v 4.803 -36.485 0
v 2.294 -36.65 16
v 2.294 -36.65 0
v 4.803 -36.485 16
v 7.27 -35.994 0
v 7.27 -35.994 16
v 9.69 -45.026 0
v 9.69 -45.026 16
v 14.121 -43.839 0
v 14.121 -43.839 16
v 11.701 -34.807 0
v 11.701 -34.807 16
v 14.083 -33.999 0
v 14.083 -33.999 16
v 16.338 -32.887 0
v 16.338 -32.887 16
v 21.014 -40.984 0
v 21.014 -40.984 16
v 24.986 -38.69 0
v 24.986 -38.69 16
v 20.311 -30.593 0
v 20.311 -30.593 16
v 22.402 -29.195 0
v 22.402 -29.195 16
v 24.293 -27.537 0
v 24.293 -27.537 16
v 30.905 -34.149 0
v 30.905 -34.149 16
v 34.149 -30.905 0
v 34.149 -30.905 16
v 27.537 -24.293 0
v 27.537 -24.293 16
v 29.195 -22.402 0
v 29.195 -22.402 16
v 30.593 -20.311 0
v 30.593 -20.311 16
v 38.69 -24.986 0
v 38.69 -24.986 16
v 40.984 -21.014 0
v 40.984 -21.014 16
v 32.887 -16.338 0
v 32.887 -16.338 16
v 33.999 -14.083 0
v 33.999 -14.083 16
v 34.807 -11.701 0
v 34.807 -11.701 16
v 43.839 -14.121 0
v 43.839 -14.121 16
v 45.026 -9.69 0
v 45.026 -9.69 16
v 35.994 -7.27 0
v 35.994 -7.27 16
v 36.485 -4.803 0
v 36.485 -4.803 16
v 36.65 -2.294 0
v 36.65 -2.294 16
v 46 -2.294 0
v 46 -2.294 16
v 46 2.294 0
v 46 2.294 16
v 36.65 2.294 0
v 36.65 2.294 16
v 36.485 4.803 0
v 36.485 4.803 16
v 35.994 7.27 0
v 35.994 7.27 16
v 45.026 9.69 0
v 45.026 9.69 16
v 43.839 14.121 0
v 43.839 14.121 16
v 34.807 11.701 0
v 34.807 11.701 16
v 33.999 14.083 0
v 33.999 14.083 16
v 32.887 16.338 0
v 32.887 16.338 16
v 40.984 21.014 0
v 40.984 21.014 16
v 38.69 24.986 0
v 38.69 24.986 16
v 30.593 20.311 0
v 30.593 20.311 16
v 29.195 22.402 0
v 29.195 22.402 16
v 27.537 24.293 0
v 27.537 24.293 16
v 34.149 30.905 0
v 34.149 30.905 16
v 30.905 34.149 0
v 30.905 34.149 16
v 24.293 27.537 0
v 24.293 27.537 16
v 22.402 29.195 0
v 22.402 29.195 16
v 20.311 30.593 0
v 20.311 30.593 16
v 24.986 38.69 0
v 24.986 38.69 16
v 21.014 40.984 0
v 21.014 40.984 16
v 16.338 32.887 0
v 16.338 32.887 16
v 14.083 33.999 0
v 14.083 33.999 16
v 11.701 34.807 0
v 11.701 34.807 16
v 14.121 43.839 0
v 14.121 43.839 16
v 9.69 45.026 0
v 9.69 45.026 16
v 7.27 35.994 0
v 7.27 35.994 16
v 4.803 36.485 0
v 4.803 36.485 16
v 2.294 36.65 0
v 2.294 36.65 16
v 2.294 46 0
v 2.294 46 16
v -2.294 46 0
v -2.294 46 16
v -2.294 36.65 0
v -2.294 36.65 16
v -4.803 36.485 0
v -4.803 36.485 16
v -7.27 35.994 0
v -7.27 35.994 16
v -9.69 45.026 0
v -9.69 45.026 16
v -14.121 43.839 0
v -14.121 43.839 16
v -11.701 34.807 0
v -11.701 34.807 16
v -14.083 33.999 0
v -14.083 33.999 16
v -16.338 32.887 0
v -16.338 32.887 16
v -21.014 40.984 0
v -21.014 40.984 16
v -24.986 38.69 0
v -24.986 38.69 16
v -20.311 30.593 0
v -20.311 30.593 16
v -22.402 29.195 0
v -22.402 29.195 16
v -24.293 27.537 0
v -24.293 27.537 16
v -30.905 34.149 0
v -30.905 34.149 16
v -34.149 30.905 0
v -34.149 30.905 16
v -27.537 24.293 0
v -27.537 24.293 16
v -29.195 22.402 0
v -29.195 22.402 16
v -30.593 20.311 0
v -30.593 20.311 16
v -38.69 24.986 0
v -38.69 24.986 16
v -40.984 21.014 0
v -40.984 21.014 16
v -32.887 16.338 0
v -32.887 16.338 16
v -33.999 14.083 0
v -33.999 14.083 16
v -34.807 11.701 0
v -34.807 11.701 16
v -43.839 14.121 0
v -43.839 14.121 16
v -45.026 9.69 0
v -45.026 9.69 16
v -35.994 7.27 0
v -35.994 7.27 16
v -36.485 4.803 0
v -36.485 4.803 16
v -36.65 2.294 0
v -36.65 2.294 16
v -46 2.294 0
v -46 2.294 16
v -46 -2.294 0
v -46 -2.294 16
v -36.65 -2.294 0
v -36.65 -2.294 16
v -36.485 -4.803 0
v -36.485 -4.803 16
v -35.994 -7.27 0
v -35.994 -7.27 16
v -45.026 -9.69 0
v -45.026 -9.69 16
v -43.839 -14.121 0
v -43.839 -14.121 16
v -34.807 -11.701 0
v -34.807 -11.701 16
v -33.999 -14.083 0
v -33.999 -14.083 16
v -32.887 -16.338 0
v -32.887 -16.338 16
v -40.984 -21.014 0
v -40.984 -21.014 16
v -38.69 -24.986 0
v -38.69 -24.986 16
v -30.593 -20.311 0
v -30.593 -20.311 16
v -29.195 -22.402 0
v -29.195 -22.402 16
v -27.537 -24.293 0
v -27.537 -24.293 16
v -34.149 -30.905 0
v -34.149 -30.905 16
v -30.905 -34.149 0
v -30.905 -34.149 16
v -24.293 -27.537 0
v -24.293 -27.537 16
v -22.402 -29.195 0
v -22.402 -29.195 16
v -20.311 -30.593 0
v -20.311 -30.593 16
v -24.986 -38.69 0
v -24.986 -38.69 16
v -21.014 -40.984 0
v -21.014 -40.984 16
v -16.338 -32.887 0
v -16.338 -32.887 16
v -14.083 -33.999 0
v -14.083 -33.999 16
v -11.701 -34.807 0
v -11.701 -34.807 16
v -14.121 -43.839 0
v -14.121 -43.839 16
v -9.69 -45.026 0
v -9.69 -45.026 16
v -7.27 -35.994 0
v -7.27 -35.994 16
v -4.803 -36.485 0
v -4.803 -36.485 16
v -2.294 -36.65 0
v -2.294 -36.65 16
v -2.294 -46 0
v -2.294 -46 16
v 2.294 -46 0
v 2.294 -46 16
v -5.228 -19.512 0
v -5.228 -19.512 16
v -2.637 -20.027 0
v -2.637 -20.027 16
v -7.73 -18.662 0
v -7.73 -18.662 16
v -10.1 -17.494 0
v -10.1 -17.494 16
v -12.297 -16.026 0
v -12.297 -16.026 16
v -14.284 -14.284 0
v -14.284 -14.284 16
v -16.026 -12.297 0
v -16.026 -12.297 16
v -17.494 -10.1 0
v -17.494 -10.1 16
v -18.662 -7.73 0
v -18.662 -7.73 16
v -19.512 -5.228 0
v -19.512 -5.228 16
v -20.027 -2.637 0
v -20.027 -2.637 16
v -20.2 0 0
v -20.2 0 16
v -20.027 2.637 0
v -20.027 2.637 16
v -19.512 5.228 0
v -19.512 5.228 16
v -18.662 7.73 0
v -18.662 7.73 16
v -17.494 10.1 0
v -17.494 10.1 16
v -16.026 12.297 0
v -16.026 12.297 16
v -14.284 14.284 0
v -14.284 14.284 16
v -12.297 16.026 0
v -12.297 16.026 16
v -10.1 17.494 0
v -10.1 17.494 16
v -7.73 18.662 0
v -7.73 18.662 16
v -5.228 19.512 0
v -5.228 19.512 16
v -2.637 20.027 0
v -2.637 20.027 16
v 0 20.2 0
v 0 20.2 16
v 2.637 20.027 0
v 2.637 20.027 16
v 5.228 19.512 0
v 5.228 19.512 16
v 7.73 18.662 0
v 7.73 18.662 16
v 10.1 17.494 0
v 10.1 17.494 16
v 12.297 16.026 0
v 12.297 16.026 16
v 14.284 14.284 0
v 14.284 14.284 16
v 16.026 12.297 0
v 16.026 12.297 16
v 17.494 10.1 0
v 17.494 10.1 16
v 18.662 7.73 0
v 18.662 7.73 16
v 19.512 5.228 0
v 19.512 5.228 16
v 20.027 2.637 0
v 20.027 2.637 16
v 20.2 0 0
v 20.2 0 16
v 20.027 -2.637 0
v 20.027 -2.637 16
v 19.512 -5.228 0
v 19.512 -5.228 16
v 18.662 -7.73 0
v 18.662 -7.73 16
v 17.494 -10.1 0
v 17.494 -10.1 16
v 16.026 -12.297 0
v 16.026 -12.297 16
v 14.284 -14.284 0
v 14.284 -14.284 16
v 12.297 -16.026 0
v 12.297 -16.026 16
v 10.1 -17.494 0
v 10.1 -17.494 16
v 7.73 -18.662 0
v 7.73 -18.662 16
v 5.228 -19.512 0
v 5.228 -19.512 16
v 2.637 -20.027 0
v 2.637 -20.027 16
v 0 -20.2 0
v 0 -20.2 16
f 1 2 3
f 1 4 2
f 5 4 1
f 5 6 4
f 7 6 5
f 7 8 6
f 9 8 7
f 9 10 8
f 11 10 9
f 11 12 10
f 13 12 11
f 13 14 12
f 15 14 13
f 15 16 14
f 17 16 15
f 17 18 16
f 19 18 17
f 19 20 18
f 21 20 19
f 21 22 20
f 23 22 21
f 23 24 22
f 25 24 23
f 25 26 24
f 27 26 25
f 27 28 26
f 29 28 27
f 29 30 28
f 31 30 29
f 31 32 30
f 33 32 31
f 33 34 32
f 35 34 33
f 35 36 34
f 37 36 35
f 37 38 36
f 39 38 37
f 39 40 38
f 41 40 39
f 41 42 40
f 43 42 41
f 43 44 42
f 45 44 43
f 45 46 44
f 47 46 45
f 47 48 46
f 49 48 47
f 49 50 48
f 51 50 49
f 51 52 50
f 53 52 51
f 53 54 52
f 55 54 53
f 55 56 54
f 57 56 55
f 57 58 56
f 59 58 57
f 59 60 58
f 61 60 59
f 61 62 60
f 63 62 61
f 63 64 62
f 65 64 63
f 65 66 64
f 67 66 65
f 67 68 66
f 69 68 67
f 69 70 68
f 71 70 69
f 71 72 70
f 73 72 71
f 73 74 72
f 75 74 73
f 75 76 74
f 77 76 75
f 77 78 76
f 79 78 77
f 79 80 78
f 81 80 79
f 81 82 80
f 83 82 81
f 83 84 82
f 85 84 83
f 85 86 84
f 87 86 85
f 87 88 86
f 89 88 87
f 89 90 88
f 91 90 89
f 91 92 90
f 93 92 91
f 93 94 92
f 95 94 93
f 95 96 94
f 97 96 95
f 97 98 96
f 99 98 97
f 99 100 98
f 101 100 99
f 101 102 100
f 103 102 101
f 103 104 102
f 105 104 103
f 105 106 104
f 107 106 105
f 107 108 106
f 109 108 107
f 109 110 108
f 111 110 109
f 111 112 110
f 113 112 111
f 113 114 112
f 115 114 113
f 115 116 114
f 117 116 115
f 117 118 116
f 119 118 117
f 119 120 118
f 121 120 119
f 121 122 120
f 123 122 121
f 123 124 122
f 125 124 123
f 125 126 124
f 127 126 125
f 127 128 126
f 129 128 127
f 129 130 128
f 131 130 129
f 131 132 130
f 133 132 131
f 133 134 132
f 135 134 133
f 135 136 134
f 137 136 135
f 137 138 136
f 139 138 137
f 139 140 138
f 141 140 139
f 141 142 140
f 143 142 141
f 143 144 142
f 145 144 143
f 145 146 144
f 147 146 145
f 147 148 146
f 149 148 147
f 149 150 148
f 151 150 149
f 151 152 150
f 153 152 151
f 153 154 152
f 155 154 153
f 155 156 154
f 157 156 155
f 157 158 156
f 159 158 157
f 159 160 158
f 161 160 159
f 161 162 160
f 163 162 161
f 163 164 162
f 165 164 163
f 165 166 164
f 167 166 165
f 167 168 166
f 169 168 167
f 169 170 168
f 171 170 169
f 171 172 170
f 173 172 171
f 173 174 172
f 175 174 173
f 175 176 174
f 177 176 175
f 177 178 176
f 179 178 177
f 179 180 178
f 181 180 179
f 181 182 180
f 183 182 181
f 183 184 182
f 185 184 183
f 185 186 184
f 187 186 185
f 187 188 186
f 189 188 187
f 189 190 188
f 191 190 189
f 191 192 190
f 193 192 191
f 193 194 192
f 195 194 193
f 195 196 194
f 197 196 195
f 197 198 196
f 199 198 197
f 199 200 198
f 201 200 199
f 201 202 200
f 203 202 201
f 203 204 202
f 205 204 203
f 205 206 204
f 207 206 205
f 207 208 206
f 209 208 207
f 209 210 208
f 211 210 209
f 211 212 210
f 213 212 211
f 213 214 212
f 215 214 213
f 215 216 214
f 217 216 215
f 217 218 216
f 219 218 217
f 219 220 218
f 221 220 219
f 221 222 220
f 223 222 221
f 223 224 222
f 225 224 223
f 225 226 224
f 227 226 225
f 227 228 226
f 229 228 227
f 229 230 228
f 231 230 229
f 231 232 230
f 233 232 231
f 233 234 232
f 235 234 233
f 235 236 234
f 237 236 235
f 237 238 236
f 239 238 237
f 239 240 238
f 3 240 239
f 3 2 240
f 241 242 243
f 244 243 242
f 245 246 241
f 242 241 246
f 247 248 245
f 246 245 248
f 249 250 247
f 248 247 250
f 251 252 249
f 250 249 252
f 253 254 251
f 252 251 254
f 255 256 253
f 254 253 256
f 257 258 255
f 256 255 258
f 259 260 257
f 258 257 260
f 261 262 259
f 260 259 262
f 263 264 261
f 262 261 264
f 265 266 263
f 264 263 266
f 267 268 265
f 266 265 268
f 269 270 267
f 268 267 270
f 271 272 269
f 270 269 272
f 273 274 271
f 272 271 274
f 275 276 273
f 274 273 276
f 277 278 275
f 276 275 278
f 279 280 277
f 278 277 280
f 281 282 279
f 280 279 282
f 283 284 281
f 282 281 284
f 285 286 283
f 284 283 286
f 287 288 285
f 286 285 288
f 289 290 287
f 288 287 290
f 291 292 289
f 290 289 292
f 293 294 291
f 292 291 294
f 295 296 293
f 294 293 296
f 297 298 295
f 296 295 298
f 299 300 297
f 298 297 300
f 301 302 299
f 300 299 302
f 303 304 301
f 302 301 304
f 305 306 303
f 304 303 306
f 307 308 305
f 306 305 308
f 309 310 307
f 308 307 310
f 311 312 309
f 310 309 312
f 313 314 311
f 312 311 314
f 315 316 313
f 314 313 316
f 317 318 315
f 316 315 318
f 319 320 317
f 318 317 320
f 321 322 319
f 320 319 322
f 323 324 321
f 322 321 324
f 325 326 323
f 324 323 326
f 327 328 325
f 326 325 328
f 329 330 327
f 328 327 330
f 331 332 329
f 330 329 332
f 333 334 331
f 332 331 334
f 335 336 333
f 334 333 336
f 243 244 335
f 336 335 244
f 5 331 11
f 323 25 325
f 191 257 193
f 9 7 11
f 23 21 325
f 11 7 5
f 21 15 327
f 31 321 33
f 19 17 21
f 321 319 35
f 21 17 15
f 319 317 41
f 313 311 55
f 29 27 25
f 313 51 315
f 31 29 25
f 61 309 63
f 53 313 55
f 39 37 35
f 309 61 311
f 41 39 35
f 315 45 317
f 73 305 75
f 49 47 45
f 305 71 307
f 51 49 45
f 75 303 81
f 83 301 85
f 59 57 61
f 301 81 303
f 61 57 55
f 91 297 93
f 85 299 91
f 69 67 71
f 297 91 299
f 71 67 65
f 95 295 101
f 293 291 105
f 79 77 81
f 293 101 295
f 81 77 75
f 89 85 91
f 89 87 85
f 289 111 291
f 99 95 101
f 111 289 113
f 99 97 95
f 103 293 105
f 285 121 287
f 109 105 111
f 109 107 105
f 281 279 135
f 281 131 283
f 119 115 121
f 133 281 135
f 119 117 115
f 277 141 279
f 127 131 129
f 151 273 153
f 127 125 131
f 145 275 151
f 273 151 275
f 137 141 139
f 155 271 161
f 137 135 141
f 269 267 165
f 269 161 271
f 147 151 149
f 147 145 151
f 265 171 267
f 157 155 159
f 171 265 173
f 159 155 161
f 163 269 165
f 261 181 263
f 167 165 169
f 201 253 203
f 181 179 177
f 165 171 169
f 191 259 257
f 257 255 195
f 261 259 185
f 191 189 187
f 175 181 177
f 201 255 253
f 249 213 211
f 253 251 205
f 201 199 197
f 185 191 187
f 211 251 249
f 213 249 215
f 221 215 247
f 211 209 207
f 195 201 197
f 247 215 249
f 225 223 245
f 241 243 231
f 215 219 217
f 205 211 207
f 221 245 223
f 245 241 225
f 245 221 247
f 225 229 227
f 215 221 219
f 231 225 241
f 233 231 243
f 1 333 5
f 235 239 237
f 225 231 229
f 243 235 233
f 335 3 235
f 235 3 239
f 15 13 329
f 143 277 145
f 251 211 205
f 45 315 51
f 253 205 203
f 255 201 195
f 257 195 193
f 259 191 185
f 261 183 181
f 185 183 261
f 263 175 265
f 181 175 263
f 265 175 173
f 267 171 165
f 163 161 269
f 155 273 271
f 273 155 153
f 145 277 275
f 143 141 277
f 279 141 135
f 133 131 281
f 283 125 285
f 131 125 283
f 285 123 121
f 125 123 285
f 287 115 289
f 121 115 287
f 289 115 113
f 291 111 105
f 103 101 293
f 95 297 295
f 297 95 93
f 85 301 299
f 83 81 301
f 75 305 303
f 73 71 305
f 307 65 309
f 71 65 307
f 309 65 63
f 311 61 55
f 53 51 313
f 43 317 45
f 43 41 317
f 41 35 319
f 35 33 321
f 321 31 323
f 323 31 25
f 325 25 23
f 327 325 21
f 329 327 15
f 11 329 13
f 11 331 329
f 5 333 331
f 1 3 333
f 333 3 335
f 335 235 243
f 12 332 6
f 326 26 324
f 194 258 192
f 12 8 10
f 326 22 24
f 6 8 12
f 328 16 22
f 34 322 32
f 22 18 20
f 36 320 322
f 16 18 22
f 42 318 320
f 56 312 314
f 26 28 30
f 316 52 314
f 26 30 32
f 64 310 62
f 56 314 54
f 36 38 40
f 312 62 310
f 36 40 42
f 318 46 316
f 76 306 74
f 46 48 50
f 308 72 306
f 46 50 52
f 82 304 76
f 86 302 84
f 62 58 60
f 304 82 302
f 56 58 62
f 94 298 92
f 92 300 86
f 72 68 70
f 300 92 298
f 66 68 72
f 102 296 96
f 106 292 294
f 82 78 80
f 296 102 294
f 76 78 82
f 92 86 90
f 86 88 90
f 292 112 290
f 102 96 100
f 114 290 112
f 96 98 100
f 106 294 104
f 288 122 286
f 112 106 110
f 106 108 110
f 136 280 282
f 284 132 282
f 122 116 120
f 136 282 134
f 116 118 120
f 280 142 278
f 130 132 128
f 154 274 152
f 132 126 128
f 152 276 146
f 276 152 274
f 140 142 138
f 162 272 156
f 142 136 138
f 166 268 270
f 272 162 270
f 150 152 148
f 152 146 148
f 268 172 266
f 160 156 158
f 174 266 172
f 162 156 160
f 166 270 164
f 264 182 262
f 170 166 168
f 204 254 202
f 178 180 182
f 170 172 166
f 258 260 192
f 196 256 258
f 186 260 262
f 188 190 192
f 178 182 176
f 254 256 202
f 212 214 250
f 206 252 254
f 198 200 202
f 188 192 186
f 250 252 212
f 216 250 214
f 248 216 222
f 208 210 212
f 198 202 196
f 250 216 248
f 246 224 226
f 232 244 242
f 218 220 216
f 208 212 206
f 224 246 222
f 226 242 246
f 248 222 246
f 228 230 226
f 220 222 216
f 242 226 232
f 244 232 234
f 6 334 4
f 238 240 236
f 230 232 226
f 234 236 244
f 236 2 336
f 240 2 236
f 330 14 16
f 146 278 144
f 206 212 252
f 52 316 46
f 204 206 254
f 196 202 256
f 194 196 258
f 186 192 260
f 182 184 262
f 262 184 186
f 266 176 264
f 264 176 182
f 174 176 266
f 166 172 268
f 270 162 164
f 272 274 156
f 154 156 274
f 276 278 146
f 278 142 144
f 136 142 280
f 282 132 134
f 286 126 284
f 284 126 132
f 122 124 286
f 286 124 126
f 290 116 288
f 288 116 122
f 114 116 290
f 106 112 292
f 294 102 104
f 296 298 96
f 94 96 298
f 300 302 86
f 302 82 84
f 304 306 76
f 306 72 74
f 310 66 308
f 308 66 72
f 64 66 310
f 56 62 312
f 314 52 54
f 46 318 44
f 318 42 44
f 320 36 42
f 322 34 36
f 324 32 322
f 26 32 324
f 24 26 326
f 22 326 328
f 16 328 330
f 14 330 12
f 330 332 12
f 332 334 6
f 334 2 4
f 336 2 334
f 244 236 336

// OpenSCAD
// ============================================================================
// Get Me An Alt — Parametric OpenSCAD Module
// Part: PRT-06 — 60-Tooth GT2 Pan Reduction Ring Gear (3:1 Ratio) (pan-ring-gear)
// Function: Multiplies pan torque 3× and rotates the upper tilt gimbal.
// Target Bounding Box (mm): [92, 92, 16]
// Print Material: PLA+ | Min Wall: >= 1.6mm | Tolerance: 0.2mm
// ============================================================================
$fn = 48;
part_width = 92;
part_depth = 92;
part_height = 16;
wall_thickness = 3.2;
floor_thickness = 3.2;
corner_radius = 4;
tolerance = 0.2;
m3_clearance_d = 3.4; // M3 screw clearance hole (3.0mm + 2*0.2mm)

module rounded_rect_prism(w, d, h, r) {
  cr = max(0.5, min(r, min(w, d) / 2 - 0.1));
  linear_extrude(height = h)
    offset(r = cr)
      offset(r = -cr)
        square([w, d], center = true);
}

module part_pan_ring_gear() {
  teeth = 24;
  outer_r = 46;
  root_r = 36.8;
  tooth_w = (2 * 3.14159 * root_r) / (teeth * 2.1);
  linear_extrude(height = part_height)
    difference() {
      union() {
        circle(r = root_r);
        for (i = [0 : teeth - 1]) {
          rotate([0, 0, i * 360 / teeth])
            translate([root_r - 0.5, -tooth_w / 2])
              square([outer_r - root_r + 0.5, tooth_w]);
        }
      }
      circle(r = 20 + tolerance);
    }
}

part_pan_ring_gear();
